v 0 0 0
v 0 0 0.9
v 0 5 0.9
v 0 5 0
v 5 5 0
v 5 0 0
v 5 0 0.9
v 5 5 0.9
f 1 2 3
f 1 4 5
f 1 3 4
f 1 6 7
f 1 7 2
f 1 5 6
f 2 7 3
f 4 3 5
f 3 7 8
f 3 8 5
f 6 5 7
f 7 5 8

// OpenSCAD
/* Warning, this is a very basic generator with a lot of approximation 
input data : [VQFN, PVX, 5x5x0.9mm, 28, , C, C04-00334C]
generated by com.zoubworld.electronics.cad.model3d.Basic
Date : Sun Feb 15 10:50:48 CET 2026
*/

//body
color("black")
translate([0,0,0])
cube([5.0,5.0,0.9], center=false);
